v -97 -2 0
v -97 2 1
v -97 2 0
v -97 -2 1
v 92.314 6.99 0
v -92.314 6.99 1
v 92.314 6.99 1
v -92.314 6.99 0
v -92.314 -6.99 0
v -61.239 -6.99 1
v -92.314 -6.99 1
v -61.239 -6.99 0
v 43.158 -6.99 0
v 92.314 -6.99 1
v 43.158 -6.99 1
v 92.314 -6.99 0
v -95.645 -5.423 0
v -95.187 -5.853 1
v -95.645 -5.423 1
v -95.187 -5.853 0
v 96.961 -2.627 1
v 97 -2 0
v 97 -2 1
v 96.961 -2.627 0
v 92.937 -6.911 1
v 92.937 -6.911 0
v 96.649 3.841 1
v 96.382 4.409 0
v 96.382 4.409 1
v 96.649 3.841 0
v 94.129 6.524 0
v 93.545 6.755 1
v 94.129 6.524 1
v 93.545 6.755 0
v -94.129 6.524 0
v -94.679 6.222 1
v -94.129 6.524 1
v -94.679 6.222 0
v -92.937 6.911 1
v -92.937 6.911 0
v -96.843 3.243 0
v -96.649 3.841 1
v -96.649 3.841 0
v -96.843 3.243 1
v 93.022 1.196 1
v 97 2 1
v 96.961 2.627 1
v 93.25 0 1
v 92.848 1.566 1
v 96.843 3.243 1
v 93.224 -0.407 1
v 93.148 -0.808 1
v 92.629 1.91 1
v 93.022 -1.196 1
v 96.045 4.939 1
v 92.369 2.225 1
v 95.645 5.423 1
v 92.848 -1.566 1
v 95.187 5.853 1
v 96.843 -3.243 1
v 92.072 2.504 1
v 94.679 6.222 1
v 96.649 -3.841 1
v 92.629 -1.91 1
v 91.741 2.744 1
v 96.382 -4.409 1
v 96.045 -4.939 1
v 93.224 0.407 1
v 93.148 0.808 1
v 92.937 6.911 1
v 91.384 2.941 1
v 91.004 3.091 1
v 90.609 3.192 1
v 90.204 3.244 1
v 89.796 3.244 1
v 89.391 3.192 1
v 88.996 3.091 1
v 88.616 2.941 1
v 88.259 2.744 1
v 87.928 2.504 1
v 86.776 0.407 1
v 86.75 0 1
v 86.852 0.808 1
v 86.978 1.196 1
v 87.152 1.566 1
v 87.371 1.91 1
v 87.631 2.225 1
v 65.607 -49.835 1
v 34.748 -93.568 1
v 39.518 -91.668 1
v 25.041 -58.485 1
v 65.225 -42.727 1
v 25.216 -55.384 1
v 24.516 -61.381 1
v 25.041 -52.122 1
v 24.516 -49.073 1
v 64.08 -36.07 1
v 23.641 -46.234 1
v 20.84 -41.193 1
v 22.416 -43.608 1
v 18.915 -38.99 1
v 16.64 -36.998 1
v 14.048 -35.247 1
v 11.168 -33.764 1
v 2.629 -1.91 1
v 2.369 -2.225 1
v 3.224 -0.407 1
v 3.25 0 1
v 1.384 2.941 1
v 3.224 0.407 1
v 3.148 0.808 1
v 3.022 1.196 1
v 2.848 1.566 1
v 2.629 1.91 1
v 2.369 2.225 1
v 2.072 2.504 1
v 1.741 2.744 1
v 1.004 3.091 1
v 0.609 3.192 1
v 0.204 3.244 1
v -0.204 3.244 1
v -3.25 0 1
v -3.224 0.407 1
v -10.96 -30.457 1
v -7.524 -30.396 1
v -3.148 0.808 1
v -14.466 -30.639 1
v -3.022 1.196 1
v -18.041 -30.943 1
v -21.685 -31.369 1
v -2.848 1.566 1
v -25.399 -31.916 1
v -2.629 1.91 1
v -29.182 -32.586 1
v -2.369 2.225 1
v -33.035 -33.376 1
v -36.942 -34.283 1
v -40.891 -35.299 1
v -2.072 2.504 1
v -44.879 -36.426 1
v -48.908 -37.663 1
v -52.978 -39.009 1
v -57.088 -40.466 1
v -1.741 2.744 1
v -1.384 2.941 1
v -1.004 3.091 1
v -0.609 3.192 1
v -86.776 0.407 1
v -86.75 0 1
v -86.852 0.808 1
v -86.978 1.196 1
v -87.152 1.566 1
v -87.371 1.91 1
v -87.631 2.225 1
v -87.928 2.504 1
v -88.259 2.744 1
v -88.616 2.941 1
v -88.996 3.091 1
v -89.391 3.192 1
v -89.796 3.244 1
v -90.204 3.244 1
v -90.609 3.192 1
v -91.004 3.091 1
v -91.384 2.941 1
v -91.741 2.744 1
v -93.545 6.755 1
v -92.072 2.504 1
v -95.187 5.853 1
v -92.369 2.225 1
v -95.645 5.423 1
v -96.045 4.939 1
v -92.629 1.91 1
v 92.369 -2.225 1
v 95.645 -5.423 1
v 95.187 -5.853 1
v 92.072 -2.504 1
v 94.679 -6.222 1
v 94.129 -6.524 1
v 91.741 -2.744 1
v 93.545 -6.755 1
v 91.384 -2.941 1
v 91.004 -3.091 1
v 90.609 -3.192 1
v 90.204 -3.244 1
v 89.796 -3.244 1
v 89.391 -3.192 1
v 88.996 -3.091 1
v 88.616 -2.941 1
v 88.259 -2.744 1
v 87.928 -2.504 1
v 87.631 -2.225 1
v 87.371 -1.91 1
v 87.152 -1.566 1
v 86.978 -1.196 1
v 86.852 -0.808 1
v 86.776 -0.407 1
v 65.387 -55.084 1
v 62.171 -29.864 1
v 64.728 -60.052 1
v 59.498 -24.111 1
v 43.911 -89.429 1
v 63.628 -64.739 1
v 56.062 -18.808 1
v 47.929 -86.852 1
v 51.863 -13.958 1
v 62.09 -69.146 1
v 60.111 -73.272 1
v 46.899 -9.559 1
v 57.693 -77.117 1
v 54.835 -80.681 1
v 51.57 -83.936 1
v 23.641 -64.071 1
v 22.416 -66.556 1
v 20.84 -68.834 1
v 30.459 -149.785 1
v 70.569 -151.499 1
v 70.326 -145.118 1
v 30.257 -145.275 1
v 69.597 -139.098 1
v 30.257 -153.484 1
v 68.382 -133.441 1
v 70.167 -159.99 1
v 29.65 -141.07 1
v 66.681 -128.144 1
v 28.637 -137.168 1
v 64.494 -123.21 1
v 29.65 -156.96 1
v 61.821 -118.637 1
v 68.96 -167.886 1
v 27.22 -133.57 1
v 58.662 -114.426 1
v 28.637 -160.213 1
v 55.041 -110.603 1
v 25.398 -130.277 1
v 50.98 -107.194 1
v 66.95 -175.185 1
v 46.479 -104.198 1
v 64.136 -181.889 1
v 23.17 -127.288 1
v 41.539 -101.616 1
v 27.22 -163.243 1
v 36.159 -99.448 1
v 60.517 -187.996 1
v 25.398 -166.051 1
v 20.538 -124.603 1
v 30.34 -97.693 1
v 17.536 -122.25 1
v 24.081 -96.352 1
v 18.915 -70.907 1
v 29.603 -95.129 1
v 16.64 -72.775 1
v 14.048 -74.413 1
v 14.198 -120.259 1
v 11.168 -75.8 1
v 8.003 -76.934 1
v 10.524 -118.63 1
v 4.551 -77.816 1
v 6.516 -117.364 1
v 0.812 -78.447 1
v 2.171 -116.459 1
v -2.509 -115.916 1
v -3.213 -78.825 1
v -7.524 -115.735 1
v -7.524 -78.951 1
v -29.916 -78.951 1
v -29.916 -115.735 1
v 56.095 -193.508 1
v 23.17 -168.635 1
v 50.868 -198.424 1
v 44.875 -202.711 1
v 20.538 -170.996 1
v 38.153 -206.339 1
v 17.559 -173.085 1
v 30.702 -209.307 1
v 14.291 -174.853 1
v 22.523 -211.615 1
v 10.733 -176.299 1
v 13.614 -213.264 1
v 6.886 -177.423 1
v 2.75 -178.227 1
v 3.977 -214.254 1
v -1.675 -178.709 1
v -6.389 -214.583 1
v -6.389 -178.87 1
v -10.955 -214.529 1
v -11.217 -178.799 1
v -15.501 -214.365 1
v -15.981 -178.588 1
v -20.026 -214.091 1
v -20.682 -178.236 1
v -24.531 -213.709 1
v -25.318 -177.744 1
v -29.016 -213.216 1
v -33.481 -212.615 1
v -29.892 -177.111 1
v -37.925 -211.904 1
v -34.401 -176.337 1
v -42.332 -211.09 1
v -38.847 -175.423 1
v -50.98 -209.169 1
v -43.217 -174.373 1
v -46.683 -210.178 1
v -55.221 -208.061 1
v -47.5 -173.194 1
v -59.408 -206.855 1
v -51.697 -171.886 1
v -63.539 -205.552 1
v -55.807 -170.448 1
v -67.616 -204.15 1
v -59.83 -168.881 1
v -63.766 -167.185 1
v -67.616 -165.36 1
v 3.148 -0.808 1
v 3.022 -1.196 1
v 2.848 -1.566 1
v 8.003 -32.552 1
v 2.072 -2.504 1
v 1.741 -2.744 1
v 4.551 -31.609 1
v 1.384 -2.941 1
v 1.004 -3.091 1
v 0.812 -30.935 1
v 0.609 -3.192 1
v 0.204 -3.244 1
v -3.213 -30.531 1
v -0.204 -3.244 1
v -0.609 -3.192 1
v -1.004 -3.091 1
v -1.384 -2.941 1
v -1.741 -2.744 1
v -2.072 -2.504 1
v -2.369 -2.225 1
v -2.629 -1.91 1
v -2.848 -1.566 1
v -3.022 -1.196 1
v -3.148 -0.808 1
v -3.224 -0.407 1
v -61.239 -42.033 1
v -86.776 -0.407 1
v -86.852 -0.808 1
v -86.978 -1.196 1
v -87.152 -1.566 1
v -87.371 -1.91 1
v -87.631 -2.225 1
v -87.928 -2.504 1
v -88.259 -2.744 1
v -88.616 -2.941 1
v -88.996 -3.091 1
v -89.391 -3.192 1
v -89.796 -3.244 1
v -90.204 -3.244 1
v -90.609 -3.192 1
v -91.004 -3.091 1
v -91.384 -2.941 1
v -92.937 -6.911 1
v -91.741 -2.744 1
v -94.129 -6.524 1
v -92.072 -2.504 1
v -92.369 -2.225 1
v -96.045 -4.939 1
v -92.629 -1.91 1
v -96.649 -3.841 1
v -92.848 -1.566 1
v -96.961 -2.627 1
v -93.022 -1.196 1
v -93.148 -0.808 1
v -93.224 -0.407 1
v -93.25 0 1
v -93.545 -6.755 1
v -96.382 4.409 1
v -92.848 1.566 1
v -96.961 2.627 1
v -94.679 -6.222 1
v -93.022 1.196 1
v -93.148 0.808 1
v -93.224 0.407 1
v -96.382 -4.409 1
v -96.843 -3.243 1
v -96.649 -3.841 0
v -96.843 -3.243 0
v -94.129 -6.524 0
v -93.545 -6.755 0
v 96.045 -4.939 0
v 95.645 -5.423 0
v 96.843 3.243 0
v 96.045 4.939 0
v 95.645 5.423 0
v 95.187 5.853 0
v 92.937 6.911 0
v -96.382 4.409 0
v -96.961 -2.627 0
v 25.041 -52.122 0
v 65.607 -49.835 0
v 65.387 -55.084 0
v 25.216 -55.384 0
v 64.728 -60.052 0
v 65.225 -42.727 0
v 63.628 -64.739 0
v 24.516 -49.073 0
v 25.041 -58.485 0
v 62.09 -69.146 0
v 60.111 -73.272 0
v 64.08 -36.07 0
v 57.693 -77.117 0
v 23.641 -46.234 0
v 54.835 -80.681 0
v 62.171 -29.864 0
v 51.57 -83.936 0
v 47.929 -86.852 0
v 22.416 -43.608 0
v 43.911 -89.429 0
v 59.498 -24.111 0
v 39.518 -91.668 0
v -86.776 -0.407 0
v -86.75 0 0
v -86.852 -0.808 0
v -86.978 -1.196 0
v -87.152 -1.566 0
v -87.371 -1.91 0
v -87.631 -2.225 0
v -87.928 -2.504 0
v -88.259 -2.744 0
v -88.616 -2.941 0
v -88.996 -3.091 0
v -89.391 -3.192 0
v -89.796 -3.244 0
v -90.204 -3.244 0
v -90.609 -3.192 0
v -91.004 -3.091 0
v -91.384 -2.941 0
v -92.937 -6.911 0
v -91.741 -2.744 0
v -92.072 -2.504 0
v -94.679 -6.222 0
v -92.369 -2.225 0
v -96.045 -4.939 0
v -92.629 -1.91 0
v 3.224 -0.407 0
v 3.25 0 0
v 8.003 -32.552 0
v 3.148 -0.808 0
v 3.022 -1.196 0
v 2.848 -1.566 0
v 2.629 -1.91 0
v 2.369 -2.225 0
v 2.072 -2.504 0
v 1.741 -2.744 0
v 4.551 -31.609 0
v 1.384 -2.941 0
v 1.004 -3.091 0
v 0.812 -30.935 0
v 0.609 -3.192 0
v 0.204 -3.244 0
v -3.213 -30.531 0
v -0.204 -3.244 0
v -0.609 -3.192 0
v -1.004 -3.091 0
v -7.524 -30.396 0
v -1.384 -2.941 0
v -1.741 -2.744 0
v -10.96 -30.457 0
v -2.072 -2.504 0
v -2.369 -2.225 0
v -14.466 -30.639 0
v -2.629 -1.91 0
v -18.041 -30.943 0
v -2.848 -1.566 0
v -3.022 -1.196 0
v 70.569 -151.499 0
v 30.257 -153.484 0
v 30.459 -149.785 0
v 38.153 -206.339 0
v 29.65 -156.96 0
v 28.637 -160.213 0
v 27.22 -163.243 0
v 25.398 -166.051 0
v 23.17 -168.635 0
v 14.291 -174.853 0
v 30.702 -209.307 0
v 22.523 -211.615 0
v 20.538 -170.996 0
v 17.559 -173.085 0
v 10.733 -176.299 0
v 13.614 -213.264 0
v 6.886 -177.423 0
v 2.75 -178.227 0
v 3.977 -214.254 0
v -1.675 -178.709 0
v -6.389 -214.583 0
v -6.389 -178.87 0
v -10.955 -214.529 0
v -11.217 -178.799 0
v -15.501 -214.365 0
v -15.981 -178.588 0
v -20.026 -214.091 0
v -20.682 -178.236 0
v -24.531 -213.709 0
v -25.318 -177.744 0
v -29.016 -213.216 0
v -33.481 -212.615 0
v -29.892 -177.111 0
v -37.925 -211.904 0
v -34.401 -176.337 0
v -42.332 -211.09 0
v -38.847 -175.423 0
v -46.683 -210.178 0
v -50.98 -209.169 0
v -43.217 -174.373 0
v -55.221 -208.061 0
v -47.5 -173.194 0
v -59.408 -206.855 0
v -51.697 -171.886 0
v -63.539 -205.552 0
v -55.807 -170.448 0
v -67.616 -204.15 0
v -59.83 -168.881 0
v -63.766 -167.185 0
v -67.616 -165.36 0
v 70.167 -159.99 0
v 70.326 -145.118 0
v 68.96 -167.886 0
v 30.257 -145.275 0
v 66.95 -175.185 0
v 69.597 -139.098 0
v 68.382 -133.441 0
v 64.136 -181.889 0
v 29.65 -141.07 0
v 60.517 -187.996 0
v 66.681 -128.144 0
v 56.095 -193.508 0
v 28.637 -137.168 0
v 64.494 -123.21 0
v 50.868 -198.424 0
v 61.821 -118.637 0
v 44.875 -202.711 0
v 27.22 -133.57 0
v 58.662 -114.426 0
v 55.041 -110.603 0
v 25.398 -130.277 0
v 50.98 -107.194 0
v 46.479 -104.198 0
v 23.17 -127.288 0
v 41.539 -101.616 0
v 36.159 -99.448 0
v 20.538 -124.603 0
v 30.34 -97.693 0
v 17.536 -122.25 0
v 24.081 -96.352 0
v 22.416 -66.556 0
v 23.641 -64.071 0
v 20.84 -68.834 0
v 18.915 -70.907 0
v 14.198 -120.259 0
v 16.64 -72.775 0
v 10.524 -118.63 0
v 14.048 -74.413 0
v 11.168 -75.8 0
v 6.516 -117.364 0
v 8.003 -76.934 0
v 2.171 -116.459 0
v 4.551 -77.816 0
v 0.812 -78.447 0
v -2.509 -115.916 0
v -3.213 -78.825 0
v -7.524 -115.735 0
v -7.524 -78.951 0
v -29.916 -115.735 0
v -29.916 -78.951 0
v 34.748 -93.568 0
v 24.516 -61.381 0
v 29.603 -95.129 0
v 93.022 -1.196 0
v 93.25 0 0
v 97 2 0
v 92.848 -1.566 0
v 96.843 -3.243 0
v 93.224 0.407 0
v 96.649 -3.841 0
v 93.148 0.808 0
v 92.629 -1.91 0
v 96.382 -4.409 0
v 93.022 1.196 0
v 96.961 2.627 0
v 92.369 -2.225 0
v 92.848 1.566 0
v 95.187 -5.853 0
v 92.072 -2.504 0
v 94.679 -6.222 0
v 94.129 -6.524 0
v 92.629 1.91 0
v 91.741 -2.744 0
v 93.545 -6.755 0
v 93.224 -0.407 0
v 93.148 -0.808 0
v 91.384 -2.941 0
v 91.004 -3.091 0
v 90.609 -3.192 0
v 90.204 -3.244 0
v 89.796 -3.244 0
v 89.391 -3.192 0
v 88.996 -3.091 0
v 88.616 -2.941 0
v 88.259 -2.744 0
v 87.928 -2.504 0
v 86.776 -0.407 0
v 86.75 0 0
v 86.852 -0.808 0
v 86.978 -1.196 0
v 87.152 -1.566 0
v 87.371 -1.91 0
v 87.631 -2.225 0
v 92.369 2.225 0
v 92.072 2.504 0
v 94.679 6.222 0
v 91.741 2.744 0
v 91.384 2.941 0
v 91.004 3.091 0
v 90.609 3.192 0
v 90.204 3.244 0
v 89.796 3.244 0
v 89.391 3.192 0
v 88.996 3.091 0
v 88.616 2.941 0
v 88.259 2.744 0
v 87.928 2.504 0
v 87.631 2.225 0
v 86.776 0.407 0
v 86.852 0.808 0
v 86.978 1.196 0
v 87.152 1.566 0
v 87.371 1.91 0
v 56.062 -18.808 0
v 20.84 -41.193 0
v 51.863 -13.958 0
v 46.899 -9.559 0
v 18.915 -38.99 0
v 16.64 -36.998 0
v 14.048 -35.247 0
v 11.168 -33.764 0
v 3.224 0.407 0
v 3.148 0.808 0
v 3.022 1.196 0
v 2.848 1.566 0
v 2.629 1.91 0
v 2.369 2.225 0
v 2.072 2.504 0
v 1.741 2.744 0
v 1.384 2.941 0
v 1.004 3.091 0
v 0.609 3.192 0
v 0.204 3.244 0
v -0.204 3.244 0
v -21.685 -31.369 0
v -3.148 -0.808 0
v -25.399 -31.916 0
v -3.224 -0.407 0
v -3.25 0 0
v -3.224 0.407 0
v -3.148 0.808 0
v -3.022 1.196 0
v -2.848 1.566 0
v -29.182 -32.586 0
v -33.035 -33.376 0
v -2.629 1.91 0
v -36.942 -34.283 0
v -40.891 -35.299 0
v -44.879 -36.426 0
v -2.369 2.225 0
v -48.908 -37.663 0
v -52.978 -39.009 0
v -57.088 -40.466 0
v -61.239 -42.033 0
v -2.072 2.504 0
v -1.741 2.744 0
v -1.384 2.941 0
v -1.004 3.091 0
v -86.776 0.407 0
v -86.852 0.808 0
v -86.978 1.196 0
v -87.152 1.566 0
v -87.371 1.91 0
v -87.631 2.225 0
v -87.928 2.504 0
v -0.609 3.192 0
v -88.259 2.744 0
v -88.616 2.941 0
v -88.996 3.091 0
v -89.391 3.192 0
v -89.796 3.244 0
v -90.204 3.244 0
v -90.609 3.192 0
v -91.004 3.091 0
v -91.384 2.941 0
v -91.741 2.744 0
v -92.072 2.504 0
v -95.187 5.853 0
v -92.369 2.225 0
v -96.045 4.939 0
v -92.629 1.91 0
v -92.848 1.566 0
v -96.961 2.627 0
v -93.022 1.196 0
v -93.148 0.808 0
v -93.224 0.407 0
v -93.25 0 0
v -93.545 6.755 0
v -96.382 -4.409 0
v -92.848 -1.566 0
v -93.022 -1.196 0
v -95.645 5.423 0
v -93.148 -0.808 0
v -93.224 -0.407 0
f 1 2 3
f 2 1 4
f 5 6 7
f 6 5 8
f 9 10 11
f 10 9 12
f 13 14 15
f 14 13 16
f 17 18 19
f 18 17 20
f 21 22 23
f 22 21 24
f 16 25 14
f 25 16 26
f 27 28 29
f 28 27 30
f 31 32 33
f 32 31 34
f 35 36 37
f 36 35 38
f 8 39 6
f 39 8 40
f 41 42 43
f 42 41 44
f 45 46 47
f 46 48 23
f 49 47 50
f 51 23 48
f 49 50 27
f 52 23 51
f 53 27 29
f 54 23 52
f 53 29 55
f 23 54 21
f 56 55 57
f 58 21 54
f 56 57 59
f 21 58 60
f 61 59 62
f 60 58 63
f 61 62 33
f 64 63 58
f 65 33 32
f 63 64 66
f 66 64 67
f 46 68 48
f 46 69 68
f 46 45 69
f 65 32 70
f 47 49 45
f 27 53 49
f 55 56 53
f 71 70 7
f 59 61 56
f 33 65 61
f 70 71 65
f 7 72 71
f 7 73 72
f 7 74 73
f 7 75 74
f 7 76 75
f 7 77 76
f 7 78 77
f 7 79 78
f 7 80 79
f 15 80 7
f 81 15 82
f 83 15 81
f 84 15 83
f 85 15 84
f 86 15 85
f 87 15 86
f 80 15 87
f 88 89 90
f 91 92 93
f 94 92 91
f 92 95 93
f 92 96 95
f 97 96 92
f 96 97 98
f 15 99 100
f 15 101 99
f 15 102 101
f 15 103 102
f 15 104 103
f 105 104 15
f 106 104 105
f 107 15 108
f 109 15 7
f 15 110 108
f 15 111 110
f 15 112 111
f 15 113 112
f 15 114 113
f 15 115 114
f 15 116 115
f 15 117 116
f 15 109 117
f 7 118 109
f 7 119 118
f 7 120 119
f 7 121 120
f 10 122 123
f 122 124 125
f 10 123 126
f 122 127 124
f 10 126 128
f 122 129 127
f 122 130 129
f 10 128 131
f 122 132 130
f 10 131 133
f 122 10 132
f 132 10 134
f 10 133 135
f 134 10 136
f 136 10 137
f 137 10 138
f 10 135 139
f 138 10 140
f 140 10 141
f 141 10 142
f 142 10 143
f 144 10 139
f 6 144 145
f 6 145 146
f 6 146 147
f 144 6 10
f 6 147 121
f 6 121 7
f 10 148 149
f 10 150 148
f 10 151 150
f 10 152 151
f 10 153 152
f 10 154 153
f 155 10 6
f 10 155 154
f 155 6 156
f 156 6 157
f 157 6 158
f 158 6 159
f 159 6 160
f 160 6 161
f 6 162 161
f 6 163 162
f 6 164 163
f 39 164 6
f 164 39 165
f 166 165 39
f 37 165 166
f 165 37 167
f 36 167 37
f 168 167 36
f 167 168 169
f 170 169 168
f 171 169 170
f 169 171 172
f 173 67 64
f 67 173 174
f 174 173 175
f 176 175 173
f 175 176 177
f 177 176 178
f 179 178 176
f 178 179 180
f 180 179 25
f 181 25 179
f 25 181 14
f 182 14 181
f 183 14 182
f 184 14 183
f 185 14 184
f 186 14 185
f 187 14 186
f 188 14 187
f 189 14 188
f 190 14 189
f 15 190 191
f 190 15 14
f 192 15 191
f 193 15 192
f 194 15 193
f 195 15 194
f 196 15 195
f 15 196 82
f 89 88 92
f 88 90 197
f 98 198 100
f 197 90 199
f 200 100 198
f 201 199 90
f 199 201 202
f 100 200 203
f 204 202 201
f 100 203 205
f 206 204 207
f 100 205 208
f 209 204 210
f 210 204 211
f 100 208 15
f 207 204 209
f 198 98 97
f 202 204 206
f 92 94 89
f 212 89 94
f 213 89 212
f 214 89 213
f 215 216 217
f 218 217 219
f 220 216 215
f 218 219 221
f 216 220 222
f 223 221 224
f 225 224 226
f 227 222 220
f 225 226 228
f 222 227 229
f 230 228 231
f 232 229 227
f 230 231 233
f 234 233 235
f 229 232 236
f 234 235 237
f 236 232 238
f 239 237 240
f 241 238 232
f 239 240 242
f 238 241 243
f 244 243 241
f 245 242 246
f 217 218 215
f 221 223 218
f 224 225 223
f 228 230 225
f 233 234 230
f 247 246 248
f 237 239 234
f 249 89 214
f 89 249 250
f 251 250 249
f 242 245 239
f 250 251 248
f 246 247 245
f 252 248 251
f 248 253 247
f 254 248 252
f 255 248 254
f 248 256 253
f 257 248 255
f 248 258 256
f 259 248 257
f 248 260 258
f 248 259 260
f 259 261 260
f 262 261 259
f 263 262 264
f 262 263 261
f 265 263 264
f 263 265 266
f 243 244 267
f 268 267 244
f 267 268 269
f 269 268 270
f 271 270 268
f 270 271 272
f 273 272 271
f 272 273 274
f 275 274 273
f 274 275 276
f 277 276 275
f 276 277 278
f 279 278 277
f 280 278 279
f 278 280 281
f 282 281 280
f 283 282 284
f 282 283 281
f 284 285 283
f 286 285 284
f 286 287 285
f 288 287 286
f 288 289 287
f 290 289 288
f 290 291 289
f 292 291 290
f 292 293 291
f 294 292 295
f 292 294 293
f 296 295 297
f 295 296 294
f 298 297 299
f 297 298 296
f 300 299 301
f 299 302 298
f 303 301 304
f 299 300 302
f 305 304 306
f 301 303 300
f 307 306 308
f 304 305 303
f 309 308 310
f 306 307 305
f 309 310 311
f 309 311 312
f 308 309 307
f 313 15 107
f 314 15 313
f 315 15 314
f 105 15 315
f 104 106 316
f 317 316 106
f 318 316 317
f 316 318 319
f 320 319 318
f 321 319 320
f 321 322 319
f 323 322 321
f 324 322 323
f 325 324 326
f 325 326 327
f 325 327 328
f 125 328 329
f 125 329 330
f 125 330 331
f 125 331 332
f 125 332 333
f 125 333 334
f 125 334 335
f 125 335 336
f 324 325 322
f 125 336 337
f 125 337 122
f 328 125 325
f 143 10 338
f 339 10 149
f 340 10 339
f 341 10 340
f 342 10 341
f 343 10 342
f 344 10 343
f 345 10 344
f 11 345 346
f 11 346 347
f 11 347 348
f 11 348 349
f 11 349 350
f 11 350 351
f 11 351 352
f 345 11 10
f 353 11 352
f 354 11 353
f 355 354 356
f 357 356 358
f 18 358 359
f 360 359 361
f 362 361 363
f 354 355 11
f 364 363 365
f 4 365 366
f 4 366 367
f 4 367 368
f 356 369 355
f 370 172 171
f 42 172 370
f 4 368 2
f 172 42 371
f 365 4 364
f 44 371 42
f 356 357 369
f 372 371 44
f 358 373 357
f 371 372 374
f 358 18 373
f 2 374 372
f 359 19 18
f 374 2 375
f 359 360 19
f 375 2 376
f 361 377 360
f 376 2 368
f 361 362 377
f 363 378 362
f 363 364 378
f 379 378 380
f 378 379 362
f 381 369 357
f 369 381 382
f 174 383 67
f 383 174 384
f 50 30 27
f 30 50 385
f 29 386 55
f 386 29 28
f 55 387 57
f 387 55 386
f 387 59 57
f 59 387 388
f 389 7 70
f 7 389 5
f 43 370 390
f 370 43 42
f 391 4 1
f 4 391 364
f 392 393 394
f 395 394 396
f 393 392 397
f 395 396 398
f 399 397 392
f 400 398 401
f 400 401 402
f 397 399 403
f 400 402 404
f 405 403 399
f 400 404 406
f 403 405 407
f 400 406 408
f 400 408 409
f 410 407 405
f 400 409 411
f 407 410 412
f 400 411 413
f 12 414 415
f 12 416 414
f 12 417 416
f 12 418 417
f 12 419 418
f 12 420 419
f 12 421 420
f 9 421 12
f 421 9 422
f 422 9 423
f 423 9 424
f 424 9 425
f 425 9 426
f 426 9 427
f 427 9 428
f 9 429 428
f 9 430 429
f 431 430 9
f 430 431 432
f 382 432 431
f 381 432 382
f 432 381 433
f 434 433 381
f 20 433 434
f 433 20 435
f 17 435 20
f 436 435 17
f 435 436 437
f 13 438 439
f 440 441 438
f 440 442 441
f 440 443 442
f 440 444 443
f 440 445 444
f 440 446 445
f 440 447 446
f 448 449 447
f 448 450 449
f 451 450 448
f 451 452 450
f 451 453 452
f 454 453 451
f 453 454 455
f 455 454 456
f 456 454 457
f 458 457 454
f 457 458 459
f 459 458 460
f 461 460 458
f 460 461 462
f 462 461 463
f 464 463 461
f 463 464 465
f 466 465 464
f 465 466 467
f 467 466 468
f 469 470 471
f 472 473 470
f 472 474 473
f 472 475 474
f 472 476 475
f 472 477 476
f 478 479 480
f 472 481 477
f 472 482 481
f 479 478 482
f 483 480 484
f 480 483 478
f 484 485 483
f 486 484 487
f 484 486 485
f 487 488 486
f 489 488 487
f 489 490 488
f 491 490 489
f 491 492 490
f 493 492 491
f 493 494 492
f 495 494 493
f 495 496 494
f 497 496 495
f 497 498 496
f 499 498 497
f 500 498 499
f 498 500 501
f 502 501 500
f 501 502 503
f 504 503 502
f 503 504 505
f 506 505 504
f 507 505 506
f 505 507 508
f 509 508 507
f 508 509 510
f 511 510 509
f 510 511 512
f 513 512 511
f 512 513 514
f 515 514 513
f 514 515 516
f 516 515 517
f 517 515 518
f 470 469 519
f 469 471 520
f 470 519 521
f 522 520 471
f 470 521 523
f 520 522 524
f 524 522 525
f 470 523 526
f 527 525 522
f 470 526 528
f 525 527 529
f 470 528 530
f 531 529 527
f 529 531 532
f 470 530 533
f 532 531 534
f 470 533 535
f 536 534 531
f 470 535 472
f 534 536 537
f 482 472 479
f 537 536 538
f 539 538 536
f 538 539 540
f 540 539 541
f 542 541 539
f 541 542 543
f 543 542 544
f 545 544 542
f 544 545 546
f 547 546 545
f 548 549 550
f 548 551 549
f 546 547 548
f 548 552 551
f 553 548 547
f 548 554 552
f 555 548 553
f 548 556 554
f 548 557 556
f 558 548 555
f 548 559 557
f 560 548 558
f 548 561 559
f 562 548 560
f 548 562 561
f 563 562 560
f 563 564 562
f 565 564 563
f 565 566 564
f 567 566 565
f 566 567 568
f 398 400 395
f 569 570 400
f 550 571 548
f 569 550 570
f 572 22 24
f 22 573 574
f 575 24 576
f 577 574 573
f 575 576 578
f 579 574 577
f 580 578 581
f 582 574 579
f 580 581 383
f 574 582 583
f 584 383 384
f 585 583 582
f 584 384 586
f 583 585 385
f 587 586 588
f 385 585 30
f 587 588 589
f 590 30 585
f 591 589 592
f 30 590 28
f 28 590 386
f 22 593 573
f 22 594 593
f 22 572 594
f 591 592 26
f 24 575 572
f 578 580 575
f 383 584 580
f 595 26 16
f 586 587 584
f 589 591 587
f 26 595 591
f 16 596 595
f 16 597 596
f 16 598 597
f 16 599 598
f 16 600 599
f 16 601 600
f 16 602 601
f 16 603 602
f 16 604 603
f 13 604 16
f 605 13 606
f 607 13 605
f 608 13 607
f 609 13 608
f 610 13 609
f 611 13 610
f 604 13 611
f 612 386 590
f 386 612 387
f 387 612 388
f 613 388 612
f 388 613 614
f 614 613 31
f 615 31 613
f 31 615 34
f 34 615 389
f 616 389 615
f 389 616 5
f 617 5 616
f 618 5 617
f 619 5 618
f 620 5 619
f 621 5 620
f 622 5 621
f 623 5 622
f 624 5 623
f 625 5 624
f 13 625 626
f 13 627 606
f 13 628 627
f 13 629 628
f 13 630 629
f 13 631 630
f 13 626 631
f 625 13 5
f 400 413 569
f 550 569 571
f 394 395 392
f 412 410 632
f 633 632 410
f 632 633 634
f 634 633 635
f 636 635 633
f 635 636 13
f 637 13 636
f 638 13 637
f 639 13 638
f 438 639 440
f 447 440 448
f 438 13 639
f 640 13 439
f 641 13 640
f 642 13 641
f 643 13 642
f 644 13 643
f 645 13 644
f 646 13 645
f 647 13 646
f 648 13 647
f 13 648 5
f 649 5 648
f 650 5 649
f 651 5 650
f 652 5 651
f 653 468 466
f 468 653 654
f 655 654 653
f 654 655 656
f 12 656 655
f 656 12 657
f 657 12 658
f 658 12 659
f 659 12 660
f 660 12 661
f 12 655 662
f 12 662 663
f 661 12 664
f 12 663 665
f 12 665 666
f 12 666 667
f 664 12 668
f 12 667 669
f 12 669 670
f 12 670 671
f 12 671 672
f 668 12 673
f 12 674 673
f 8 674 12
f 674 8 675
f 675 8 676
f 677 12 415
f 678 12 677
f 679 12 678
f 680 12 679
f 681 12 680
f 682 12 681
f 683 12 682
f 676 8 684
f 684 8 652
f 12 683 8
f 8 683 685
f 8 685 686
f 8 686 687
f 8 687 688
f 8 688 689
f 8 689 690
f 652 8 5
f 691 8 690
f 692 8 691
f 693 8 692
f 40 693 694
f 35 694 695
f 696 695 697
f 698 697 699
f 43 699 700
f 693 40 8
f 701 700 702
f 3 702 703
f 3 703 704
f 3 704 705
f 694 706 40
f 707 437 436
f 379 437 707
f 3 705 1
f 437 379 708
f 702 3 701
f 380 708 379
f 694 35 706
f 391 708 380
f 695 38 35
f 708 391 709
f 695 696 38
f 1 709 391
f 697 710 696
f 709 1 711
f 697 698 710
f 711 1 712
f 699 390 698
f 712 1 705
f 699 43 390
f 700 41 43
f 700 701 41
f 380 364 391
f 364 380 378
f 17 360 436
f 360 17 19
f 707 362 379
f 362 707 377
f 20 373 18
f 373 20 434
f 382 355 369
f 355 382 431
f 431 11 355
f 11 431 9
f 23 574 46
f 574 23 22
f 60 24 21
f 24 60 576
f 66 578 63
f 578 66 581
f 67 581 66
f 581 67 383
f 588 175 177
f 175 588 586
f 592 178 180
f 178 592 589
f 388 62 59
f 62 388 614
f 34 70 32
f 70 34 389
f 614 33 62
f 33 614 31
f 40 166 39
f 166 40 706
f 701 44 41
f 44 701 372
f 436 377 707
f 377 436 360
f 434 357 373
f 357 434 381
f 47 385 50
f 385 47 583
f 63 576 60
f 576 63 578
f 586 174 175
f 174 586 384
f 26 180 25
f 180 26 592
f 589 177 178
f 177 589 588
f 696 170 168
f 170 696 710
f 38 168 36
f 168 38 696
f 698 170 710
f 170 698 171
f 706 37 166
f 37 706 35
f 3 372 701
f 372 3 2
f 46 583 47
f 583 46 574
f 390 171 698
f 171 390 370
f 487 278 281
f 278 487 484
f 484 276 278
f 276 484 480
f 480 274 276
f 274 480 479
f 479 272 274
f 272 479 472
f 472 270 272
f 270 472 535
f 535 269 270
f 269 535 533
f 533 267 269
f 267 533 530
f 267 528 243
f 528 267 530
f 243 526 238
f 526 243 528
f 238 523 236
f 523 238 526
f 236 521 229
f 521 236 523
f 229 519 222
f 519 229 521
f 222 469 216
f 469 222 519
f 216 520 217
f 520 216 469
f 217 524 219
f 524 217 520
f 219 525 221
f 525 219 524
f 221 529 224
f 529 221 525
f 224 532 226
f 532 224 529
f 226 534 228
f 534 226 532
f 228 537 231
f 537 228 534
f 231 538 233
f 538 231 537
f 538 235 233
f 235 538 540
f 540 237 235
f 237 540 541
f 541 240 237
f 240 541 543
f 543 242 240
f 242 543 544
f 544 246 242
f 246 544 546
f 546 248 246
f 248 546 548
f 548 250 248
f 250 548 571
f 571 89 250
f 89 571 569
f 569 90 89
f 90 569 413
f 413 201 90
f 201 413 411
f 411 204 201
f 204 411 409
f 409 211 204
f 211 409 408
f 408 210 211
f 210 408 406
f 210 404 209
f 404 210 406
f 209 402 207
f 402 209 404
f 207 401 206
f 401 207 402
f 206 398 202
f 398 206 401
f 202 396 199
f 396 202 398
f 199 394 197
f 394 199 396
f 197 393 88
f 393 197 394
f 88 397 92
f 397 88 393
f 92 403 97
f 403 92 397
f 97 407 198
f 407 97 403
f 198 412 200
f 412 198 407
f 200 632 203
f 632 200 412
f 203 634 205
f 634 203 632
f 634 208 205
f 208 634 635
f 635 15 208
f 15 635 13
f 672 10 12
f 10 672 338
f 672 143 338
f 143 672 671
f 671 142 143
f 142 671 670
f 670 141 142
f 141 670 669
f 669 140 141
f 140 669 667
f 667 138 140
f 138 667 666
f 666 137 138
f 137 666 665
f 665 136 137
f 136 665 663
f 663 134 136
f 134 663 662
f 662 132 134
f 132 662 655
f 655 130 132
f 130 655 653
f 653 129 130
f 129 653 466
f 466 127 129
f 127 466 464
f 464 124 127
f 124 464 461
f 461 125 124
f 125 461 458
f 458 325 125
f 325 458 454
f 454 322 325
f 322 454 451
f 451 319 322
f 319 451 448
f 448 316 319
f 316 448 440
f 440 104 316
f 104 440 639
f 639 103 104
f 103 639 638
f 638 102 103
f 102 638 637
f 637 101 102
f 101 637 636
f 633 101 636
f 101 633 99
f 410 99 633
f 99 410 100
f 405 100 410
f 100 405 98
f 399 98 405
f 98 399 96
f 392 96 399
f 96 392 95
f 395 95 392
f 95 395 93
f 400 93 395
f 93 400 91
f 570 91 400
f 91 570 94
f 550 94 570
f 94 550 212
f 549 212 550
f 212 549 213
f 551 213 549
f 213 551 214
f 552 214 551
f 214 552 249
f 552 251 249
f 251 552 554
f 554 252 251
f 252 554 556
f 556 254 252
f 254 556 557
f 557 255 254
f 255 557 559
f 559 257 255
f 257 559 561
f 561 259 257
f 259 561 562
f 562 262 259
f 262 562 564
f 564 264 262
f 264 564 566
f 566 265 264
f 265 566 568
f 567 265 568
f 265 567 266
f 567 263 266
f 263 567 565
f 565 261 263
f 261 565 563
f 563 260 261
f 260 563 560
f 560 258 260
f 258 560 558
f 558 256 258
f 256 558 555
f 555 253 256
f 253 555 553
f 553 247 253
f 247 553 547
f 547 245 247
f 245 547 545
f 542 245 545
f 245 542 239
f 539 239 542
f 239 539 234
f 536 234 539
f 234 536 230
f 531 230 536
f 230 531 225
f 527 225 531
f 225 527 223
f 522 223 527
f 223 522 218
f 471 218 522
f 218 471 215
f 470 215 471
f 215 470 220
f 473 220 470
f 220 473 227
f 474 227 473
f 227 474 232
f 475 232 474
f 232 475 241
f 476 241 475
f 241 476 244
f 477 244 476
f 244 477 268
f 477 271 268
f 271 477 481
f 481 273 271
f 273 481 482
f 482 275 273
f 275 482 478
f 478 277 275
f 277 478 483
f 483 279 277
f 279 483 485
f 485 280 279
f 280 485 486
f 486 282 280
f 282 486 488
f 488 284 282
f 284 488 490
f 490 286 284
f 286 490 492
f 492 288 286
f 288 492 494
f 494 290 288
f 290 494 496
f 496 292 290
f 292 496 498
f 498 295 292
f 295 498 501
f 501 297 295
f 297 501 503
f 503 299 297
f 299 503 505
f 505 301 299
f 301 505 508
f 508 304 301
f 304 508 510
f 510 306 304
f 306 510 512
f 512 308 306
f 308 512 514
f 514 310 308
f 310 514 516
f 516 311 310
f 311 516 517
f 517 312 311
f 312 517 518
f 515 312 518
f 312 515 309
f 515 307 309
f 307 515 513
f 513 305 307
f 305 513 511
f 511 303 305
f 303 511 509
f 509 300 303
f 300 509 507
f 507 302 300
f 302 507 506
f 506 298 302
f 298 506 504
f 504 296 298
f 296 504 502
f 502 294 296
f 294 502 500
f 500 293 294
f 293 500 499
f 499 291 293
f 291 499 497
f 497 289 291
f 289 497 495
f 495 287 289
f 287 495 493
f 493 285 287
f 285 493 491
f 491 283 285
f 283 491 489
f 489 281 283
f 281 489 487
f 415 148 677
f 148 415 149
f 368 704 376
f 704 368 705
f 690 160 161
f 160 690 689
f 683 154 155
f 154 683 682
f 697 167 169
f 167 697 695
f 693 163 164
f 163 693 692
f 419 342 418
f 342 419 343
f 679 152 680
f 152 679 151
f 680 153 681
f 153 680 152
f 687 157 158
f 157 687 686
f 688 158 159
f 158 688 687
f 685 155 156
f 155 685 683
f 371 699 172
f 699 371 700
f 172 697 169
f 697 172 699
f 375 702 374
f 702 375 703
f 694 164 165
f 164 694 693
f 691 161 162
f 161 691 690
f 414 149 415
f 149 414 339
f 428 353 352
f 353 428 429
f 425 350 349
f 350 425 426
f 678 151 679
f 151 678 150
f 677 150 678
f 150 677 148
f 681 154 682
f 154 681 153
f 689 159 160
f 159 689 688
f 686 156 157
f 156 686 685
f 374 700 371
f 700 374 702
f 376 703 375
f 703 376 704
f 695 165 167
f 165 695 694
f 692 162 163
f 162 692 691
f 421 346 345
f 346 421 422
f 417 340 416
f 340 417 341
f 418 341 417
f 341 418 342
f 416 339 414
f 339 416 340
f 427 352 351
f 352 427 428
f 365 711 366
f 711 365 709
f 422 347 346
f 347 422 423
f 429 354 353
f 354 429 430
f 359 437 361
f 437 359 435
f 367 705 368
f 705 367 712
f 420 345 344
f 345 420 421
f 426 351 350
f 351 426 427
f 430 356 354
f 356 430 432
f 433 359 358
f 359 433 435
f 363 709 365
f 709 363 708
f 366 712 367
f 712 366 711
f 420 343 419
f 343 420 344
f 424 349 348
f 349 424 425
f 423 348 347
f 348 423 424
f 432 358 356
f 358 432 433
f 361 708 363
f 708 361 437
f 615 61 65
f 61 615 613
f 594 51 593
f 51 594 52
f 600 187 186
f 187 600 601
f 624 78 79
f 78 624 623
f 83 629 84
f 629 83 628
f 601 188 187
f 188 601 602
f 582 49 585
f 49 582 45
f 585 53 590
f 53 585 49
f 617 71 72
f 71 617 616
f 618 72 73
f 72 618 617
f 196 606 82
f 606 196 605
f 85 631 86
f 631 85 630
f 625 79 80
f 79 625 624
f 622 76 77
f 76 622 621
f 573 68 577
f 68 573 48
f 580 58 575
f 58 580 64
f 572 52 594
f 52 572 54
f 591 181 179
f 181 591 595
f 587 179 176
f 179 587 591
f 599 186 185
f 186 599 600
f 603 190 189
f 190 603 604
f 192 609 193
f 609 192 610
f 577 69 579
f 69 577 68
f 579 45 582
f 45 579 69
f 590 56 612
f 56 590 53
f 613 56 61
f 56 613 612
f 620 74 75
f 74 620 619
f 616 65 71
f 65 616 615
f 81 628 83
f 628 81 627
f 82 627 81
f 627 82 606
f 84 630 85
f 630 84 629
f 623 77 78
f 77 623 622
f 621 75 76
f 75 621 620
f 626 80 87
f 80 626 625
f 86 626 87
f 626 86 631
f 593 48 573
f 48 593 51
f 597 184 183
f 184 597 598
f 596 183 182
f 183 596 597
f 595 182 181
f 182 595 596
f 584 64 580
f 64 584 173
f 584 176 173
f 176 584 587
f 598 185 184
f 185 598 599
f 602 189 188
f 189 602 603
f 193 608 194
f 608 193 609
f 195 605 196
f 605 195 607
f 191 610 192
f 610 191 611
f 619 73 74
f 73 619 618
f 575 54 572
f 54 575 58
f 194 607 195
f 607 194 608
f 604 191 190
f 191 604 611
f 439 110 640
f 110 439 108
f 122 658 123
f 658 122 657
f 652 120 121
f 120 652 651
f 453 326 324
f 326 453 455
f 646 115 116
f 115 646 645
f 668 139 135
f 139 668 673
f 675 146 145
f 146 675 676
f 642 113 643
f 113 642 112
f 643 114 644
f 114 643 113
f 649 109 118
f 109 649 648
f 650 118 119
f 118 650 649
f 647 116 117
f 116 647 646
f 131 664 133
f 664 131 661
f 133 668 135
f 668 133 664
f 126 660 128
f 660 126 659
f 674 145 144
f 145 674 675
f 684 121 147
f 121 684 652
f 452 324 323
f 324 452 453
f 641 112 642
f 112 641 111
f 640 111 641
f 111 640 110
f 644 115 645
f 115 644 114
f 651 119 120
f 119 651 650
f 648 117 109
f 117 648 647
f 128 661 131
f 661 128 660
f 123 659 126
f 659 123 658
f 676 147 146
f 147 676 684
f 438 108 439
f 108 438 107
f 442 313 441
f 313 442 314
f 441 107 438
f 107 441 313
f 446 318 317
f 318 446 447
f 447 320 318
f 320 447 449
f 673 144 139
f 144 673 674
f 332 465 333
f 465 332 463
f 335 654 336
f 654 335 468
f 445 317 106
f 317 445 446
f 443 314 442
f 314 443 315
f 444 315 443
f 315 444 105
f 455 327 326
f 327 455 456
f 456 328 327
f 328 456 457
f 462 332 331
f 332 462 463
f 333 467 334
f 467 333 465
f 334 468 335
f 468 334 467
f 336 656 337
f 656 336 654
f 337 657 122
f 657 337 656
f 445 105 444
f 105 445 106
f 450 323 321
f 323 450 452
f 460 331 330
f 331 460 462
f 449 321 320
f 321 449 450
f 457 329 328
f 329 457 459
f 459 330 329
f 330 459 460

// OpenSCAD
$fn = 50;


difference() {
	union() {
		translate(v = [0, 0, 0]) {
			rotate(a = [0, 0, 0]) {
				hull() {
					translate(v = [-92.0000000000, 2.0000000000, 0]) {
						rotate(a = [0, 0, 0]) {
							translate(v = [0, 0, 0]) {
								rotate(a = [0, 0, 0]) {
									cylinder(h = 1, r = 5);
								}
							}
						}
					}
					translate(v = [92.0000000000, 2.0000000000, 0]) {
						rotate(a = [0, 0, 0]) {
							translate(v = [0, 0, 0]) {
								rotate(a = [0, 0, 0]) {
									cylinder(h = 1, r = 5);
								}
							}
						}
					}
					translate(v = [-92.0000000000, -2.0000000000, 0]) {
						rotate(a = [0, 0, 0]) {
							translate(v = [0, 0, 0]) {
								rotate(a = [0, 0, 0]) {
									cylinder(h = 1, r = 5);
								}
							}
						}
					}
					translate(v = [92.0000000000, -2.0000000000, 0]) {
						rotate(a = [0, 0, 0]) {
							translate(v = [0, 0, 0]) {
								rotate(a = [0, 0, 0]) {
									cylinder(h = 1, r = 5);
								}
							}
						}
					}
				}
			}
		}
		translate(v = [0, 0, 0]) {
			rotate(a = [0, 0, 0]) {
				linear_extrude(height = 1) {
					text(font = "DejaVu Sans Mono:style=Bold", halign = "center", size = 209.0000000000, text = "3", valign = "top");
				}
			}
		}
	}
	union() {
		translate(v = [-90.0000000000, 0.0000000000, -125.0000000000]) {
			rotate(a = [0, 0, 0]) {
				cylinder(h = 250, r = 3.2500000000);
			}
		}
		translate(v = [90.0000000000, 0.0000000000, -125.0000000000]) {
			rotate(a = [0, 0, 0]) {
				cylinder(h = 250, r = 3.2500000000);
			}
		}
		translate(v = [90.0000000000, 0.0000000000, -125.0000000000]) {
			rotate(a = [0, 0, 0]) {
				cylinder(h = 250, r = 3.2500000000);
			}
		}
		translate(v = [0, 0, -125.0000000000]) {
			rotate(a = [0, 0, 0]) {
				cylinder(h = 250, r = 3.2500000000);
			}
		}
	}
}
